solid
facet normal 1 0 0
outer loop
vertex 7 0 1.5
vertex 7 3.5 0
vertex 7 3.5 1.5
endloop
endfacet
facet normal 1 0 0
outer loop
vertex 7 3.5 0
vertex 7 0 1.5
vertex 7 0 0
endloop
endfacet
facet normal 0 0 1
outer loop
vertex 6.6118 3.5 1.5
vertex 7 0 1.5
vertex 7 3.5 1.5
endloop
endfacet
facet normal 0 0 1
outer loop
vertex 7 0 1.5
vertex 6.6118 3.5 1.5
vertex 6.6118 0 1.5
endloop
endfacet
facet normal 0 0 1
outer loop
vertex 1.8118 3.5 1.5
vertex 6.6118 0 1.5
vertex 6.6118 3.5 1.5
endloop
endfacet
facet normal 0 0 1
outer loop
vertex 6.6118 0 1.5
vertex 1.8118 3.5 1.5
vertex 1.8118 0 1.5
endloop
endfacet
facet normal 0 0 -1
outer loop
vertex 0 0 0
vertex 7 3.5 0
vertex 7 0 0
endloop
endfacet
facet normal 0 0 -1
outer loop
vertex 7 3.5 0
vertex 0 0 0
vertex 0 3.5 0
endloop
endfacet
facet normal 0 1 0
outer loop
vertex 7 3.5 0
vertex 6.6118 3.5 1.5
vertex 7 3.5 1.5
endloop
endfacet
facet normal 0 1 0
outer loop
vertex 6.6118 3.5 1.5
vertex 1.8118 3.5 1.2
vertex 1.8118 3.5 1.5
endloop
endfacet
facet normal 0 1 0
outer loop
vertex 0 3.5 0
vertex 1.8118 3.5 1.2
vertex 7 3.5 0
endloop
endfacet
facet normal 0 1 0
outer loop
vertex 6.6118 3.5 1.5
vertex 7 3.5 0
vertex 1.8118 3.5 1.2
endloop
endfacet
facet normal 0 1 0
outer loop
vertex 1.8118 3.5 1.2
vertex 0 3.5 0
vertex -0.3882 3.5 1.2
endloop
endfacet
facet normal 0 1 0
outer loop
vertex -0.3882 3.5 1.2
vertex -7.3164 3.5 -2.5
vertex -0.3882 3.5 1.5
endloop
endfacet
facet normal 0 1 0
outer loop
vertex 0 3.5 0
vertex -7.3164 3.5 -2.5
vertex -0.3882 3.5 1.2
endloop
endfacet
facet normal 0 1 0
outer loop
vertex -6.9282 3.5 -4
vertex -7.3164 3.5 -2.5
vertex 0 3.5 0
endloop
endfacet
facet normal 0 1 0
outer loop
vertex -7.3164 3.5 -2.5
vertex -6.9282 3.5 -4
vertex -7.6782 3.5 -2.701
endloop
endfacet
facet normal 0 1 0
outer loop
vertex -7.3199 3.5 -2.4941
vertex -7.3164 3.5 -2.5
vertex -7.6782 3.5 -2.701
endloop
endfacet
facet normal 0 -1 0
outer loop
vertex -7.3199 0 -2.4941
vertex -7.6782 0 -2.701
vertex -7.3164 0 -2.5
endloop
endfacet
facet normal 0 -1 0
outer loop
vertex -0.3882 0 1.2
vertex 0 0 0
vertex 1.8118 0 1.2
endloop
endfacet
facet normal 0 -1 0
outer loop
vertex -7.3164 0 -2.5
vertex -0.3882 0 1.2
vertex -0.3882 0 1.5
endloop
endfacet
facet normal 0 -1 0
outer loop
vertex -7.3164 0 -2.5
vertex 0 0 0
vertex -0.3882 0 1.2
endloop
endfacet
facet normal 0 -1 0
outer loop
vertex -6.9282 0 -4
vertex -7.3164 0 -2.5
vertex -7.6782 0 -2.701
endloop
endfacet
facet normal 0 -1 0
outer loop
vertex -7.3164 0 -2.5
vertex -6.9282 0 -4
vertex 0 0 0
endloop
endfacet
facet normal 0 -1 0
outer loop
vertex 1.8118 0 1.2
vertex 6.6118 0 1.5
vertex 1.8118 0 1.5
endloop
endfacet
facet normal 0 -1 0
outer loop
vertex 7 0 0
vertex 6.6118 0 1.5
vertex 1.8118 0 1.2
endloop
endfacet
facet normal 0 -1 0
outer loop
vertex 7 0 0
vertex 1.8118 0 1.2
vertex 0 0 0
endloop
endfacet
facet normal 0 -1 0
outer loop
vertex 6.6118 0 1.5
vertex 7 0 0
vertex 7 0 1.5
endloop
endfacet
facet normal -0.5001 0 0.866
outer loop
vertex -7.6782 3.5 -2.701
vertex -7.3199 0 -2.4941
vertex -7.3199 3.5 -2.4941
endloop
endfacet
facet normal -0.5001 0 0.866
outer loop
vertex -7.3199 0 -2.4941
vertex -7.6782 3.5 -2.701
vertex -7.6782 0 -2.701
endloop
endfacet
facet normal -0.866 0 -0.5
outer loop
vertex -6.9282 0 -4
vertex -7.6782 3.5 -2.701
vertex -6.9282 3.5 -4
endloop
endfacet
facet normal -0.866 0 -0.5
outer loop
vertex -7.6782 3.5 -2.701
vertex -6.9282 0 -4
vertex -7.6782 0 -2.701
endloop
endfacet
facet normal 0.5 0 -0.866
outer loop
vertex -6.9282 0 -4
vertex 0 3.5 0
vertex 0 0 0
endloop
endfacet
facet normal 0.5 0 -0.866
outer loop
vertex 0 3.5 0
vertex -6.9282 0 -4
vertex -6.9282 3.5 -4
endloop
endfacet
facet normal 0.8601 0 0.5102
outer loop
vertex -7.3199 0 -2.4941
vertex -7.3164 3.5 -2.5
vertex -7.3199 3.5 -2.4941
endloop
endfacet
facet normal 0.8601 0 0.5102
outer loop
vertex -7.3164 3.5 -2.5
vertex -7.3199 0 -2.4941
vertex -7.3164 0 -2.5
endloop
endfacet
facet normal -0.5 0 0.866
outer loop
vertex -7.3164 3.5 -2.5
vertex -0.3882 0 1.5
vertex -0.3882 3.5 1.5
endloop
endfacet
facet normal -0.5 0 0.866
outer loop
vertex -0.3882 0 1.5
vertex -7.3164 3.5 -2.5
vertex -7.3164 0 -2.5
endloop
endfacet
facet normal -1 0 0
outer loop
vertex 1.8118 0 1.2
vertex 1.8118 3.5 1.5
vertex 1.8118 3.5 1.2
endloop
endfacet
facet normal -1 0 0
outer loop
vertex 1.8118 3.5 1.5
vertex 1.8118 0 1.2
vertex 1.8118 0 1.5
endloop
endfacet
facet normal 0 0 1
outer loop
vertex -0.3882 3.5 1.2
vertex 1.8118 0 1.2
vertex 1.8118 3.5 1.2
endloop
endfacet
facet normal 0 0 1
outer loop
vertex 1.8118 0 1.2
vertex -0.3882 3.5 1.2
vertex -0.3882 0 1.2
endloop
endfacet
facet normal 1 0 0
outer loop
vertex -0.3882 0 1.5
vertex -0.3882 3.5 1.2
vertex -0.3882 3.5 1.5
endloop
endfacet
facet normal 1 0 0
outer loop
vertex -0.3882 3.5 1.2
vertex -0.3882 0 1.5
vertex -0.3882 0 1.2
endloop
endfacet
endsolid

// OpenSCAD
ang=30;
width=3.5;
thickness=1.5;

flat_length=8;
bent_length=8;

difference() {
  peg();
  scale([1,2,1]) translate([-thickness*sin(ang/2),-1,thickness]) {
    peg();
    translate([0,0,-0.3]) cube([2.2,width,5]);
  }

}

module peg() {
  union() {
    translate([-1,0,0]) cube([flat_length,width,thickness]);
    rotate(-ang,[0,1,0]) translate([-bent_length,0,0]) cube([bent_length+2,width,thickness]);
  }
}
